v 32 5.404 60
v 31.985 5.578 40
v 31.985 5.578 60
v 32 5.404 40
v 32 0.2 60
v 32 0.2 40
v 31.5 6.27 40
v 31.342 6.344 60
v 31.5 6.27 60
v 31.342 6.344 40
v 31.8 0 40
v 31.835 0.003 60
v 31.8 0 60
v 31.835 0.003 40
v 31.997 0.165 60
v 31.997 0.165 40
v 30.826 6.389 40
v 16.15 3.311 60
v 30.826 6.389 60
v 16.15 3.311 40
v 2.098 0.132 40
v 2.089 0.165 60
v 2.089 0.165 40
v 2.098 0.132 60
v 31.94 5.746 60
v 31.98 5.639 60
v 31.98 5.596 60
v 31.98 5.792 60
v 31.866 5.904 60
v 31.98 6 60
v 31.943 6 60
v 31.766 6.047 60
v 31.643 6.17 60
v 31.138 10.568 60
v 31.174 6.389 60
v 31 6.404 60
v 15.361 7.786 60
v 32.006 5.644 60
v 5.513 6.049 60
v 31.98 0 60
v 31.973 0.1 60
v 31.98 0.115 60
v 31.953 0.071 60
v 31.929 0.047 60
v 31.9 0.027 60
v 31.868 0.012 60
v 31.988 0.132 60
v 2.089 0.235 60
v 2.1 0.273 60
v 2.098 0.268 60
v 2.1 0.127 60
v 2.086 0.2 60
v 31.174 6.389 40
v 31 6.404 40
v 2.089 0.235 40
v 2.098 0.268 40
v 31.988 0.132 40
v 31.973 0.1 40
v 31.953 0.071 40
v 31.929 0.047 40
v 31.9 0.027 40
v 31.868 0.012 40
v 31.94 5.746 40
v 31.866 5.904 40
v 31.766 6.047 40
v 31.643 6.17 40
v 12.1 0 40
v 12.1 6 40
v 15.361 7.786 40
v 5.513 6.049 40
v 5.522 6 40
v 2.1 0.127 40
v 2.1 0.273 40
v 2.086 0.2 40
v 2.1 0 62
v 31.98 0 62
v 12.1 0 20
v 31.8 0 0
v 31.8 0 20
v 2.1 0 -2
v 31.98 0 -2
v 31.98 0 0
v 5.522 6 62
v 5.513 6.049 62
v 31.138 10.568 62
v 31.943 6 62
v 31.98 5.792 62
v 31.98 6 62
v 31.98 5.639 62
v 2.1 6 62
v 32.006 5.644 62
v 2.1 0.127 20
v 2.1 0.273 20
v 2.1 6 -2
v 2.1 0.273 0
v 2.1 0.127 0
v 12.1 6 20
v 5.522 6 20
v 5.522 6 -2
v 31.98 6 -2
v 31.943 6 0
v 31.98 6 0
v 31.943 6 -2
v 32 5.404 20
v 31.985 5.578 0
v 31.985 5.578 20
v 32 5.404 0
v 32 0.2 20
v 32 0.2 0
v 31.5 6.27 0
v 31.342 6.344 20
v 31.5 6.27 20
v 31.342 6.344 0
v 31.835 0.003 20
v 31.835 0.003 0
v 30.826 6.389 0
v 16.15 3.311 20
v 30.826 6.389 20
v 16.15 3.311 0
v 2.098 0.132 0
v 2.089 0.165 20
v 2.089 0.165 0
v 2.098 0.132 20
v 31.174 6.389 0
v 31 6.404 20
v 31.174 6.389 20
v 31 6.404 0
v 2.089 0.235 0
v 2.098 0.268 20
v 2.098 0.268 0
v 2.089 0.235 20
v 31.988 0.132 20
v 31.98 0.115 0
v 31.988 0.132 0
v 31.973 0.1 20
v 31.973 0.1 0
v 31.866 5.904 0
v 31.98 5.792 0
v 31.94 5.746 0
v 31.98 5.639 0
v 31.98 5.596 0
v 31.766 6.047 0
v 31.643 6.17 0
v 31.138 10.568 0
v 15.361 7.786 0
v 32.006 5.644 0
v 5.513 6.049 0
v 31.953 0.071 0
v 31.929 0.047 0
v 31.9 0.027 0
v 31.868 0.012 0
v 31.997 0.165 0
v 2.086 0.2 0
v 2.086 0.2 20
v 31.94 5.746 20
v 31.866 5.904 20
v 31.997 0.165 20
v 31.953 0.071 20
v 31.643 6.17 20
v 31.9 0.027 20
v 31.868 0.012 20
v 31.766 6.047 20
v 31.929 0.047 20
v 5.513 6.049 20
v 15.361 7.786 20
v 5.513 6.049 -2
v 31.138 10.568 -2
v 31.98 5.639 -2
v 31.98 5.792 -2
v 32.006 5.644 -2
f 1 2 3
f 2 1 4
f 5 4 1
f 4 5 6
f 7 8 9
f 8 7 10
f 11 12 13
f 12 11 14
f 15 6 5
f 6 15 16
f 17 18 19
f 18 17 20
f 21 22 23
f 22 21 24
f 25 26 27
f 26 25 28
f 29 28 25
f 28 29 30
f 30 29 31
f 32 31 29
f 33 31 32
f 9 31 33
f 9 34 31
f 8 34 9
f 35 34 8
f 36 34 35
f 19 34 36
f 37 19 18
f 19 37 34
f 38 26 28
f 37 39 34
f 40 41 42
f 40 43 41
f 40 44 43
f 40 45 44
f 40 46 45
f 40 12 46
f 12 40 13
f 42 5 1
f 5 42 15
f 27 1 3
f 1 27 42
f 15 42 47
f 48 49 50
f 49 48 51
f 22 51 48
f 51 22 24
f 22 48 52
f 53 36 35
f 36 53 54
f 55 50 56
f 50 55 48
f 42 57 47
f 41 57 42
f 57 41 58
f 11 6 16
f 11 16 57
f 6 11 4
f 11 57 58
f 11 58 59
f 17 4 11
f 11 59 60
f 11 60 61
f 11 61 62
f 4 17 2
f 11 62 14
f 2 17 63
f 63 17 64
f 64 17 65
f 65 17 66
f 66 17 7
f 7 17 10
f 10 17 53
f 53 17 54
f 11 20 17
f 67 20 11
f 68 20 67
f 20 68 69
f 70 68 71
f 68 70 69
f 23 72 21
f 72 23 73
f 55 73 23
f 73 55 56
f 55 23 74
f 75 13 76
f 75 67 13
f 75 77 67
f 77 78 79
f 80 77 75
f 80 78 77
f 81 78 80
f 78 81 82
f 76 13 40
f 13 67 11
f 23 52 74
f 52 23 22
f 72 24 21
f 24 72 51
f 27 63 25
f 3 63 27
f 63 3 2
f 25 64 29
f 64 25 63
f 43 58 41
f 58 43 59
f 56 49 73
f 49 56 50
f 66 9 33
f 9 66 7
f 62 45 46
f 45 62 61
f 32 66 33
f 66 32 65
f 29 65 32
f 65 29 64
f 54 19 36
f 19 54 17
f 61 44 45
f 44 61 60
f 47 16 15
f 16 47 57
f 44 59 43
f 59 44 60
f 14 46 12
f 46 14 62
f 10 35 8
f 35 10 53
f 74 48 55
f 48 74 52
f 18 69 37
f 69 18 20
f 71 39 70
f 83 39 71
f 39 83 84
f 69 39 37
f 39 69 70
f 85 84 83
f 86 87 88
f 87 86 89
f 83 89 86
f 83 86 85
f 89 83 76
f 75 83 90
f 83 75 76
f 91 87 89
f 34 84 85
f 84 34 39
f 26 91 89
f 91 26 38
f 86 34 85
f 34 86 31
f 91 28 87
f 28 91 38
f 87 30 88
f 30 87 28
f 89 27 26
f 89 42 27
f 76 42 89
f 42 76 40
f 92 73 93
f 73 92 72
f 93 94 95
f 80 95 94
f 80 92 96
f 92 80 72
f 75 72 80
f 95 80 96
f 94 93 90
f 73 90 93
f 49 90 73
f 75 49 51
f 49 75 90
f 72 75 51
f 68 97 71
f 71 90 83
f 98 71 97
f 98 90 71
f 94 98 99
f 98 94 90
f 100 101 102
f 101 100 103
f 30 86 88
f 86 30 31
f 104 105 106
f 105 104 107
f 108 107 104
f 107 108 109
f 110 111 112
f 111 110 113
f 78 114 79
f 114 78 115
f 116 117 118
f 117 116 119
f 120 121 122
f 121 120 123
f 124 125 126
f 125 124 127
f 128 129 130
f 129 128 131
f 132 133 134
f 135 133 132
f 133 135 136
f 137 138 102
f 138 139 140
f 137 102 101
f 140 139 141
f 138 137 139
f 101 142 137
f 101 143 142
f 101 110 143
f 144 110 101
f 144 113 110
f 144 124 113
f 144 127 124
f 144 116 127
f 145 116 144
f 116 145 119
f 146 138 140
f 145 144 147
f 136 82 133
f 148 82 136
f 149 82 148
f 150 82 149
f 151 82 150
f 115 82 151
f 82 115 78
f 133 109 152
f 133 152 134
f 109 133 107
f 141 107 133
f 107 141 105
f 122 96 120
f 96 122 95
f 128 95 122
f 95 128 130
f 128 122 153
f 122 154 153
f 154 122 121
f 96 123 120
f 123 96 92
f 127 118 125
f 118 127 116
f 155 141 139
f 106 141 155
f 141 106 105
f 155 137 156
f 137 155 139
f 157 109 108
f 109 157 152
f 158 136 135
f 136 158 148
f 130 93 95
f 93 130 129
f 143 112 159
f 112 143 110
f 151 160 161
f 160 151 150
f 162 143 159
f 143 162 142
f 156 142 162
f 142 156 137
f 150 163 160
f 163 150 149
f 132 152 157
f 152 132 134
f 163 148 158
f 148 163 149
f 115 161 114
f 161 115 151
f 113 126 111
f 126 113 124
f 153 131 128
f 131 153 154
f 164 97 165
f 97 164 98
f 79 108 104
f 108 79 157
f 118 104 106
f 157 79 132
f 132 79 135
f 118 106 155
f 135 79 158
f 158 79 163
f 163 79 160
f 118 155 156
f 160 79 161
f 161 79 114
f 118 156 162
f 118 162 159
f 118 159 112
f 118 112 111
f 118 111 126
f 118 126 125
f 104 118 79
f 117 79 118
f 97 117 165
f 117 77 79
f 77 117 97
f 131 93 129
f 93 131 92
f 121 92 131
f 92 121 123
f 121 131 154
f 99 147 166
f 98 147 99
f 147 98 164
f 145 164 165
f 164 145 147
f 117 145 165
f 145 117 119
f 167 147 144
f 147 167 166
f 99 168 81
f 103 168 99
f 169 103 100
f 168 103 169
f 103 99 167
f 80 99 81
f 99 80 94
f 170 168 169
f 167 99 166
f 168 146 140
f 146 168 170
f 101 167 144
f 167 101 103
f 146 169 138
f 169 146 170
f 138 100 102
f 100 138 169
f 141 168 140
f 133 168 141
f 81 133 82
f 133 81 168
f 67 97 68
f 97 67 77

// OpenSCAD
$fn = 36;

e = .2;
e2 = 1;
z = 20;
h = 32;
d = 10; // deg

hull() {
  dx = e / tan(d/2);
  translate([dx, e, 0]) cylinder(z, e, e);
  translate([h - e, e, 0]) cylinder(z, e, e);
  dy = e / tan((180 - 90 - d)/2);
  translate([h - e2, h * tan(d) - dy, 0]) cylinder(z, e2, e2);
}
rotate([0, 0, d]) translate([6.48, 0, 0]) cube([10, 5, z]);
rotate([0, 0, d]) translate([6.48, 0, -2]) cube([26.02, 5, 2]);
translate([2.1, 0, -2]) cube([29.88, 6, 2]);

translate([2.1, 0, 0]) cube([10, 6, 3 * z]);

translate([0, 0, 2 * z]) {
hull() {
  dx = e / tan(d/2);
  translate([dx, e, 0]) cylinder(z, e, e);
  translate([h - e, e, 0]) cylinder(z, e, e);
  dy = e / tan((180 - 90 - d)/2);
  translate([h - e2, h * tan(d) - dy, 0]) cylinder(z, e2, e2);
}
rotate([0, 0, d]) translate([6.48, 0, 0]) cube([10, 5, z]);
rotate([0, 0, d]) translate([6.48, 0, 20]) cube([26.02, 5, 2]);
translate([2.1, 0, 20]) cube([29.88, 6, 2]);
}
